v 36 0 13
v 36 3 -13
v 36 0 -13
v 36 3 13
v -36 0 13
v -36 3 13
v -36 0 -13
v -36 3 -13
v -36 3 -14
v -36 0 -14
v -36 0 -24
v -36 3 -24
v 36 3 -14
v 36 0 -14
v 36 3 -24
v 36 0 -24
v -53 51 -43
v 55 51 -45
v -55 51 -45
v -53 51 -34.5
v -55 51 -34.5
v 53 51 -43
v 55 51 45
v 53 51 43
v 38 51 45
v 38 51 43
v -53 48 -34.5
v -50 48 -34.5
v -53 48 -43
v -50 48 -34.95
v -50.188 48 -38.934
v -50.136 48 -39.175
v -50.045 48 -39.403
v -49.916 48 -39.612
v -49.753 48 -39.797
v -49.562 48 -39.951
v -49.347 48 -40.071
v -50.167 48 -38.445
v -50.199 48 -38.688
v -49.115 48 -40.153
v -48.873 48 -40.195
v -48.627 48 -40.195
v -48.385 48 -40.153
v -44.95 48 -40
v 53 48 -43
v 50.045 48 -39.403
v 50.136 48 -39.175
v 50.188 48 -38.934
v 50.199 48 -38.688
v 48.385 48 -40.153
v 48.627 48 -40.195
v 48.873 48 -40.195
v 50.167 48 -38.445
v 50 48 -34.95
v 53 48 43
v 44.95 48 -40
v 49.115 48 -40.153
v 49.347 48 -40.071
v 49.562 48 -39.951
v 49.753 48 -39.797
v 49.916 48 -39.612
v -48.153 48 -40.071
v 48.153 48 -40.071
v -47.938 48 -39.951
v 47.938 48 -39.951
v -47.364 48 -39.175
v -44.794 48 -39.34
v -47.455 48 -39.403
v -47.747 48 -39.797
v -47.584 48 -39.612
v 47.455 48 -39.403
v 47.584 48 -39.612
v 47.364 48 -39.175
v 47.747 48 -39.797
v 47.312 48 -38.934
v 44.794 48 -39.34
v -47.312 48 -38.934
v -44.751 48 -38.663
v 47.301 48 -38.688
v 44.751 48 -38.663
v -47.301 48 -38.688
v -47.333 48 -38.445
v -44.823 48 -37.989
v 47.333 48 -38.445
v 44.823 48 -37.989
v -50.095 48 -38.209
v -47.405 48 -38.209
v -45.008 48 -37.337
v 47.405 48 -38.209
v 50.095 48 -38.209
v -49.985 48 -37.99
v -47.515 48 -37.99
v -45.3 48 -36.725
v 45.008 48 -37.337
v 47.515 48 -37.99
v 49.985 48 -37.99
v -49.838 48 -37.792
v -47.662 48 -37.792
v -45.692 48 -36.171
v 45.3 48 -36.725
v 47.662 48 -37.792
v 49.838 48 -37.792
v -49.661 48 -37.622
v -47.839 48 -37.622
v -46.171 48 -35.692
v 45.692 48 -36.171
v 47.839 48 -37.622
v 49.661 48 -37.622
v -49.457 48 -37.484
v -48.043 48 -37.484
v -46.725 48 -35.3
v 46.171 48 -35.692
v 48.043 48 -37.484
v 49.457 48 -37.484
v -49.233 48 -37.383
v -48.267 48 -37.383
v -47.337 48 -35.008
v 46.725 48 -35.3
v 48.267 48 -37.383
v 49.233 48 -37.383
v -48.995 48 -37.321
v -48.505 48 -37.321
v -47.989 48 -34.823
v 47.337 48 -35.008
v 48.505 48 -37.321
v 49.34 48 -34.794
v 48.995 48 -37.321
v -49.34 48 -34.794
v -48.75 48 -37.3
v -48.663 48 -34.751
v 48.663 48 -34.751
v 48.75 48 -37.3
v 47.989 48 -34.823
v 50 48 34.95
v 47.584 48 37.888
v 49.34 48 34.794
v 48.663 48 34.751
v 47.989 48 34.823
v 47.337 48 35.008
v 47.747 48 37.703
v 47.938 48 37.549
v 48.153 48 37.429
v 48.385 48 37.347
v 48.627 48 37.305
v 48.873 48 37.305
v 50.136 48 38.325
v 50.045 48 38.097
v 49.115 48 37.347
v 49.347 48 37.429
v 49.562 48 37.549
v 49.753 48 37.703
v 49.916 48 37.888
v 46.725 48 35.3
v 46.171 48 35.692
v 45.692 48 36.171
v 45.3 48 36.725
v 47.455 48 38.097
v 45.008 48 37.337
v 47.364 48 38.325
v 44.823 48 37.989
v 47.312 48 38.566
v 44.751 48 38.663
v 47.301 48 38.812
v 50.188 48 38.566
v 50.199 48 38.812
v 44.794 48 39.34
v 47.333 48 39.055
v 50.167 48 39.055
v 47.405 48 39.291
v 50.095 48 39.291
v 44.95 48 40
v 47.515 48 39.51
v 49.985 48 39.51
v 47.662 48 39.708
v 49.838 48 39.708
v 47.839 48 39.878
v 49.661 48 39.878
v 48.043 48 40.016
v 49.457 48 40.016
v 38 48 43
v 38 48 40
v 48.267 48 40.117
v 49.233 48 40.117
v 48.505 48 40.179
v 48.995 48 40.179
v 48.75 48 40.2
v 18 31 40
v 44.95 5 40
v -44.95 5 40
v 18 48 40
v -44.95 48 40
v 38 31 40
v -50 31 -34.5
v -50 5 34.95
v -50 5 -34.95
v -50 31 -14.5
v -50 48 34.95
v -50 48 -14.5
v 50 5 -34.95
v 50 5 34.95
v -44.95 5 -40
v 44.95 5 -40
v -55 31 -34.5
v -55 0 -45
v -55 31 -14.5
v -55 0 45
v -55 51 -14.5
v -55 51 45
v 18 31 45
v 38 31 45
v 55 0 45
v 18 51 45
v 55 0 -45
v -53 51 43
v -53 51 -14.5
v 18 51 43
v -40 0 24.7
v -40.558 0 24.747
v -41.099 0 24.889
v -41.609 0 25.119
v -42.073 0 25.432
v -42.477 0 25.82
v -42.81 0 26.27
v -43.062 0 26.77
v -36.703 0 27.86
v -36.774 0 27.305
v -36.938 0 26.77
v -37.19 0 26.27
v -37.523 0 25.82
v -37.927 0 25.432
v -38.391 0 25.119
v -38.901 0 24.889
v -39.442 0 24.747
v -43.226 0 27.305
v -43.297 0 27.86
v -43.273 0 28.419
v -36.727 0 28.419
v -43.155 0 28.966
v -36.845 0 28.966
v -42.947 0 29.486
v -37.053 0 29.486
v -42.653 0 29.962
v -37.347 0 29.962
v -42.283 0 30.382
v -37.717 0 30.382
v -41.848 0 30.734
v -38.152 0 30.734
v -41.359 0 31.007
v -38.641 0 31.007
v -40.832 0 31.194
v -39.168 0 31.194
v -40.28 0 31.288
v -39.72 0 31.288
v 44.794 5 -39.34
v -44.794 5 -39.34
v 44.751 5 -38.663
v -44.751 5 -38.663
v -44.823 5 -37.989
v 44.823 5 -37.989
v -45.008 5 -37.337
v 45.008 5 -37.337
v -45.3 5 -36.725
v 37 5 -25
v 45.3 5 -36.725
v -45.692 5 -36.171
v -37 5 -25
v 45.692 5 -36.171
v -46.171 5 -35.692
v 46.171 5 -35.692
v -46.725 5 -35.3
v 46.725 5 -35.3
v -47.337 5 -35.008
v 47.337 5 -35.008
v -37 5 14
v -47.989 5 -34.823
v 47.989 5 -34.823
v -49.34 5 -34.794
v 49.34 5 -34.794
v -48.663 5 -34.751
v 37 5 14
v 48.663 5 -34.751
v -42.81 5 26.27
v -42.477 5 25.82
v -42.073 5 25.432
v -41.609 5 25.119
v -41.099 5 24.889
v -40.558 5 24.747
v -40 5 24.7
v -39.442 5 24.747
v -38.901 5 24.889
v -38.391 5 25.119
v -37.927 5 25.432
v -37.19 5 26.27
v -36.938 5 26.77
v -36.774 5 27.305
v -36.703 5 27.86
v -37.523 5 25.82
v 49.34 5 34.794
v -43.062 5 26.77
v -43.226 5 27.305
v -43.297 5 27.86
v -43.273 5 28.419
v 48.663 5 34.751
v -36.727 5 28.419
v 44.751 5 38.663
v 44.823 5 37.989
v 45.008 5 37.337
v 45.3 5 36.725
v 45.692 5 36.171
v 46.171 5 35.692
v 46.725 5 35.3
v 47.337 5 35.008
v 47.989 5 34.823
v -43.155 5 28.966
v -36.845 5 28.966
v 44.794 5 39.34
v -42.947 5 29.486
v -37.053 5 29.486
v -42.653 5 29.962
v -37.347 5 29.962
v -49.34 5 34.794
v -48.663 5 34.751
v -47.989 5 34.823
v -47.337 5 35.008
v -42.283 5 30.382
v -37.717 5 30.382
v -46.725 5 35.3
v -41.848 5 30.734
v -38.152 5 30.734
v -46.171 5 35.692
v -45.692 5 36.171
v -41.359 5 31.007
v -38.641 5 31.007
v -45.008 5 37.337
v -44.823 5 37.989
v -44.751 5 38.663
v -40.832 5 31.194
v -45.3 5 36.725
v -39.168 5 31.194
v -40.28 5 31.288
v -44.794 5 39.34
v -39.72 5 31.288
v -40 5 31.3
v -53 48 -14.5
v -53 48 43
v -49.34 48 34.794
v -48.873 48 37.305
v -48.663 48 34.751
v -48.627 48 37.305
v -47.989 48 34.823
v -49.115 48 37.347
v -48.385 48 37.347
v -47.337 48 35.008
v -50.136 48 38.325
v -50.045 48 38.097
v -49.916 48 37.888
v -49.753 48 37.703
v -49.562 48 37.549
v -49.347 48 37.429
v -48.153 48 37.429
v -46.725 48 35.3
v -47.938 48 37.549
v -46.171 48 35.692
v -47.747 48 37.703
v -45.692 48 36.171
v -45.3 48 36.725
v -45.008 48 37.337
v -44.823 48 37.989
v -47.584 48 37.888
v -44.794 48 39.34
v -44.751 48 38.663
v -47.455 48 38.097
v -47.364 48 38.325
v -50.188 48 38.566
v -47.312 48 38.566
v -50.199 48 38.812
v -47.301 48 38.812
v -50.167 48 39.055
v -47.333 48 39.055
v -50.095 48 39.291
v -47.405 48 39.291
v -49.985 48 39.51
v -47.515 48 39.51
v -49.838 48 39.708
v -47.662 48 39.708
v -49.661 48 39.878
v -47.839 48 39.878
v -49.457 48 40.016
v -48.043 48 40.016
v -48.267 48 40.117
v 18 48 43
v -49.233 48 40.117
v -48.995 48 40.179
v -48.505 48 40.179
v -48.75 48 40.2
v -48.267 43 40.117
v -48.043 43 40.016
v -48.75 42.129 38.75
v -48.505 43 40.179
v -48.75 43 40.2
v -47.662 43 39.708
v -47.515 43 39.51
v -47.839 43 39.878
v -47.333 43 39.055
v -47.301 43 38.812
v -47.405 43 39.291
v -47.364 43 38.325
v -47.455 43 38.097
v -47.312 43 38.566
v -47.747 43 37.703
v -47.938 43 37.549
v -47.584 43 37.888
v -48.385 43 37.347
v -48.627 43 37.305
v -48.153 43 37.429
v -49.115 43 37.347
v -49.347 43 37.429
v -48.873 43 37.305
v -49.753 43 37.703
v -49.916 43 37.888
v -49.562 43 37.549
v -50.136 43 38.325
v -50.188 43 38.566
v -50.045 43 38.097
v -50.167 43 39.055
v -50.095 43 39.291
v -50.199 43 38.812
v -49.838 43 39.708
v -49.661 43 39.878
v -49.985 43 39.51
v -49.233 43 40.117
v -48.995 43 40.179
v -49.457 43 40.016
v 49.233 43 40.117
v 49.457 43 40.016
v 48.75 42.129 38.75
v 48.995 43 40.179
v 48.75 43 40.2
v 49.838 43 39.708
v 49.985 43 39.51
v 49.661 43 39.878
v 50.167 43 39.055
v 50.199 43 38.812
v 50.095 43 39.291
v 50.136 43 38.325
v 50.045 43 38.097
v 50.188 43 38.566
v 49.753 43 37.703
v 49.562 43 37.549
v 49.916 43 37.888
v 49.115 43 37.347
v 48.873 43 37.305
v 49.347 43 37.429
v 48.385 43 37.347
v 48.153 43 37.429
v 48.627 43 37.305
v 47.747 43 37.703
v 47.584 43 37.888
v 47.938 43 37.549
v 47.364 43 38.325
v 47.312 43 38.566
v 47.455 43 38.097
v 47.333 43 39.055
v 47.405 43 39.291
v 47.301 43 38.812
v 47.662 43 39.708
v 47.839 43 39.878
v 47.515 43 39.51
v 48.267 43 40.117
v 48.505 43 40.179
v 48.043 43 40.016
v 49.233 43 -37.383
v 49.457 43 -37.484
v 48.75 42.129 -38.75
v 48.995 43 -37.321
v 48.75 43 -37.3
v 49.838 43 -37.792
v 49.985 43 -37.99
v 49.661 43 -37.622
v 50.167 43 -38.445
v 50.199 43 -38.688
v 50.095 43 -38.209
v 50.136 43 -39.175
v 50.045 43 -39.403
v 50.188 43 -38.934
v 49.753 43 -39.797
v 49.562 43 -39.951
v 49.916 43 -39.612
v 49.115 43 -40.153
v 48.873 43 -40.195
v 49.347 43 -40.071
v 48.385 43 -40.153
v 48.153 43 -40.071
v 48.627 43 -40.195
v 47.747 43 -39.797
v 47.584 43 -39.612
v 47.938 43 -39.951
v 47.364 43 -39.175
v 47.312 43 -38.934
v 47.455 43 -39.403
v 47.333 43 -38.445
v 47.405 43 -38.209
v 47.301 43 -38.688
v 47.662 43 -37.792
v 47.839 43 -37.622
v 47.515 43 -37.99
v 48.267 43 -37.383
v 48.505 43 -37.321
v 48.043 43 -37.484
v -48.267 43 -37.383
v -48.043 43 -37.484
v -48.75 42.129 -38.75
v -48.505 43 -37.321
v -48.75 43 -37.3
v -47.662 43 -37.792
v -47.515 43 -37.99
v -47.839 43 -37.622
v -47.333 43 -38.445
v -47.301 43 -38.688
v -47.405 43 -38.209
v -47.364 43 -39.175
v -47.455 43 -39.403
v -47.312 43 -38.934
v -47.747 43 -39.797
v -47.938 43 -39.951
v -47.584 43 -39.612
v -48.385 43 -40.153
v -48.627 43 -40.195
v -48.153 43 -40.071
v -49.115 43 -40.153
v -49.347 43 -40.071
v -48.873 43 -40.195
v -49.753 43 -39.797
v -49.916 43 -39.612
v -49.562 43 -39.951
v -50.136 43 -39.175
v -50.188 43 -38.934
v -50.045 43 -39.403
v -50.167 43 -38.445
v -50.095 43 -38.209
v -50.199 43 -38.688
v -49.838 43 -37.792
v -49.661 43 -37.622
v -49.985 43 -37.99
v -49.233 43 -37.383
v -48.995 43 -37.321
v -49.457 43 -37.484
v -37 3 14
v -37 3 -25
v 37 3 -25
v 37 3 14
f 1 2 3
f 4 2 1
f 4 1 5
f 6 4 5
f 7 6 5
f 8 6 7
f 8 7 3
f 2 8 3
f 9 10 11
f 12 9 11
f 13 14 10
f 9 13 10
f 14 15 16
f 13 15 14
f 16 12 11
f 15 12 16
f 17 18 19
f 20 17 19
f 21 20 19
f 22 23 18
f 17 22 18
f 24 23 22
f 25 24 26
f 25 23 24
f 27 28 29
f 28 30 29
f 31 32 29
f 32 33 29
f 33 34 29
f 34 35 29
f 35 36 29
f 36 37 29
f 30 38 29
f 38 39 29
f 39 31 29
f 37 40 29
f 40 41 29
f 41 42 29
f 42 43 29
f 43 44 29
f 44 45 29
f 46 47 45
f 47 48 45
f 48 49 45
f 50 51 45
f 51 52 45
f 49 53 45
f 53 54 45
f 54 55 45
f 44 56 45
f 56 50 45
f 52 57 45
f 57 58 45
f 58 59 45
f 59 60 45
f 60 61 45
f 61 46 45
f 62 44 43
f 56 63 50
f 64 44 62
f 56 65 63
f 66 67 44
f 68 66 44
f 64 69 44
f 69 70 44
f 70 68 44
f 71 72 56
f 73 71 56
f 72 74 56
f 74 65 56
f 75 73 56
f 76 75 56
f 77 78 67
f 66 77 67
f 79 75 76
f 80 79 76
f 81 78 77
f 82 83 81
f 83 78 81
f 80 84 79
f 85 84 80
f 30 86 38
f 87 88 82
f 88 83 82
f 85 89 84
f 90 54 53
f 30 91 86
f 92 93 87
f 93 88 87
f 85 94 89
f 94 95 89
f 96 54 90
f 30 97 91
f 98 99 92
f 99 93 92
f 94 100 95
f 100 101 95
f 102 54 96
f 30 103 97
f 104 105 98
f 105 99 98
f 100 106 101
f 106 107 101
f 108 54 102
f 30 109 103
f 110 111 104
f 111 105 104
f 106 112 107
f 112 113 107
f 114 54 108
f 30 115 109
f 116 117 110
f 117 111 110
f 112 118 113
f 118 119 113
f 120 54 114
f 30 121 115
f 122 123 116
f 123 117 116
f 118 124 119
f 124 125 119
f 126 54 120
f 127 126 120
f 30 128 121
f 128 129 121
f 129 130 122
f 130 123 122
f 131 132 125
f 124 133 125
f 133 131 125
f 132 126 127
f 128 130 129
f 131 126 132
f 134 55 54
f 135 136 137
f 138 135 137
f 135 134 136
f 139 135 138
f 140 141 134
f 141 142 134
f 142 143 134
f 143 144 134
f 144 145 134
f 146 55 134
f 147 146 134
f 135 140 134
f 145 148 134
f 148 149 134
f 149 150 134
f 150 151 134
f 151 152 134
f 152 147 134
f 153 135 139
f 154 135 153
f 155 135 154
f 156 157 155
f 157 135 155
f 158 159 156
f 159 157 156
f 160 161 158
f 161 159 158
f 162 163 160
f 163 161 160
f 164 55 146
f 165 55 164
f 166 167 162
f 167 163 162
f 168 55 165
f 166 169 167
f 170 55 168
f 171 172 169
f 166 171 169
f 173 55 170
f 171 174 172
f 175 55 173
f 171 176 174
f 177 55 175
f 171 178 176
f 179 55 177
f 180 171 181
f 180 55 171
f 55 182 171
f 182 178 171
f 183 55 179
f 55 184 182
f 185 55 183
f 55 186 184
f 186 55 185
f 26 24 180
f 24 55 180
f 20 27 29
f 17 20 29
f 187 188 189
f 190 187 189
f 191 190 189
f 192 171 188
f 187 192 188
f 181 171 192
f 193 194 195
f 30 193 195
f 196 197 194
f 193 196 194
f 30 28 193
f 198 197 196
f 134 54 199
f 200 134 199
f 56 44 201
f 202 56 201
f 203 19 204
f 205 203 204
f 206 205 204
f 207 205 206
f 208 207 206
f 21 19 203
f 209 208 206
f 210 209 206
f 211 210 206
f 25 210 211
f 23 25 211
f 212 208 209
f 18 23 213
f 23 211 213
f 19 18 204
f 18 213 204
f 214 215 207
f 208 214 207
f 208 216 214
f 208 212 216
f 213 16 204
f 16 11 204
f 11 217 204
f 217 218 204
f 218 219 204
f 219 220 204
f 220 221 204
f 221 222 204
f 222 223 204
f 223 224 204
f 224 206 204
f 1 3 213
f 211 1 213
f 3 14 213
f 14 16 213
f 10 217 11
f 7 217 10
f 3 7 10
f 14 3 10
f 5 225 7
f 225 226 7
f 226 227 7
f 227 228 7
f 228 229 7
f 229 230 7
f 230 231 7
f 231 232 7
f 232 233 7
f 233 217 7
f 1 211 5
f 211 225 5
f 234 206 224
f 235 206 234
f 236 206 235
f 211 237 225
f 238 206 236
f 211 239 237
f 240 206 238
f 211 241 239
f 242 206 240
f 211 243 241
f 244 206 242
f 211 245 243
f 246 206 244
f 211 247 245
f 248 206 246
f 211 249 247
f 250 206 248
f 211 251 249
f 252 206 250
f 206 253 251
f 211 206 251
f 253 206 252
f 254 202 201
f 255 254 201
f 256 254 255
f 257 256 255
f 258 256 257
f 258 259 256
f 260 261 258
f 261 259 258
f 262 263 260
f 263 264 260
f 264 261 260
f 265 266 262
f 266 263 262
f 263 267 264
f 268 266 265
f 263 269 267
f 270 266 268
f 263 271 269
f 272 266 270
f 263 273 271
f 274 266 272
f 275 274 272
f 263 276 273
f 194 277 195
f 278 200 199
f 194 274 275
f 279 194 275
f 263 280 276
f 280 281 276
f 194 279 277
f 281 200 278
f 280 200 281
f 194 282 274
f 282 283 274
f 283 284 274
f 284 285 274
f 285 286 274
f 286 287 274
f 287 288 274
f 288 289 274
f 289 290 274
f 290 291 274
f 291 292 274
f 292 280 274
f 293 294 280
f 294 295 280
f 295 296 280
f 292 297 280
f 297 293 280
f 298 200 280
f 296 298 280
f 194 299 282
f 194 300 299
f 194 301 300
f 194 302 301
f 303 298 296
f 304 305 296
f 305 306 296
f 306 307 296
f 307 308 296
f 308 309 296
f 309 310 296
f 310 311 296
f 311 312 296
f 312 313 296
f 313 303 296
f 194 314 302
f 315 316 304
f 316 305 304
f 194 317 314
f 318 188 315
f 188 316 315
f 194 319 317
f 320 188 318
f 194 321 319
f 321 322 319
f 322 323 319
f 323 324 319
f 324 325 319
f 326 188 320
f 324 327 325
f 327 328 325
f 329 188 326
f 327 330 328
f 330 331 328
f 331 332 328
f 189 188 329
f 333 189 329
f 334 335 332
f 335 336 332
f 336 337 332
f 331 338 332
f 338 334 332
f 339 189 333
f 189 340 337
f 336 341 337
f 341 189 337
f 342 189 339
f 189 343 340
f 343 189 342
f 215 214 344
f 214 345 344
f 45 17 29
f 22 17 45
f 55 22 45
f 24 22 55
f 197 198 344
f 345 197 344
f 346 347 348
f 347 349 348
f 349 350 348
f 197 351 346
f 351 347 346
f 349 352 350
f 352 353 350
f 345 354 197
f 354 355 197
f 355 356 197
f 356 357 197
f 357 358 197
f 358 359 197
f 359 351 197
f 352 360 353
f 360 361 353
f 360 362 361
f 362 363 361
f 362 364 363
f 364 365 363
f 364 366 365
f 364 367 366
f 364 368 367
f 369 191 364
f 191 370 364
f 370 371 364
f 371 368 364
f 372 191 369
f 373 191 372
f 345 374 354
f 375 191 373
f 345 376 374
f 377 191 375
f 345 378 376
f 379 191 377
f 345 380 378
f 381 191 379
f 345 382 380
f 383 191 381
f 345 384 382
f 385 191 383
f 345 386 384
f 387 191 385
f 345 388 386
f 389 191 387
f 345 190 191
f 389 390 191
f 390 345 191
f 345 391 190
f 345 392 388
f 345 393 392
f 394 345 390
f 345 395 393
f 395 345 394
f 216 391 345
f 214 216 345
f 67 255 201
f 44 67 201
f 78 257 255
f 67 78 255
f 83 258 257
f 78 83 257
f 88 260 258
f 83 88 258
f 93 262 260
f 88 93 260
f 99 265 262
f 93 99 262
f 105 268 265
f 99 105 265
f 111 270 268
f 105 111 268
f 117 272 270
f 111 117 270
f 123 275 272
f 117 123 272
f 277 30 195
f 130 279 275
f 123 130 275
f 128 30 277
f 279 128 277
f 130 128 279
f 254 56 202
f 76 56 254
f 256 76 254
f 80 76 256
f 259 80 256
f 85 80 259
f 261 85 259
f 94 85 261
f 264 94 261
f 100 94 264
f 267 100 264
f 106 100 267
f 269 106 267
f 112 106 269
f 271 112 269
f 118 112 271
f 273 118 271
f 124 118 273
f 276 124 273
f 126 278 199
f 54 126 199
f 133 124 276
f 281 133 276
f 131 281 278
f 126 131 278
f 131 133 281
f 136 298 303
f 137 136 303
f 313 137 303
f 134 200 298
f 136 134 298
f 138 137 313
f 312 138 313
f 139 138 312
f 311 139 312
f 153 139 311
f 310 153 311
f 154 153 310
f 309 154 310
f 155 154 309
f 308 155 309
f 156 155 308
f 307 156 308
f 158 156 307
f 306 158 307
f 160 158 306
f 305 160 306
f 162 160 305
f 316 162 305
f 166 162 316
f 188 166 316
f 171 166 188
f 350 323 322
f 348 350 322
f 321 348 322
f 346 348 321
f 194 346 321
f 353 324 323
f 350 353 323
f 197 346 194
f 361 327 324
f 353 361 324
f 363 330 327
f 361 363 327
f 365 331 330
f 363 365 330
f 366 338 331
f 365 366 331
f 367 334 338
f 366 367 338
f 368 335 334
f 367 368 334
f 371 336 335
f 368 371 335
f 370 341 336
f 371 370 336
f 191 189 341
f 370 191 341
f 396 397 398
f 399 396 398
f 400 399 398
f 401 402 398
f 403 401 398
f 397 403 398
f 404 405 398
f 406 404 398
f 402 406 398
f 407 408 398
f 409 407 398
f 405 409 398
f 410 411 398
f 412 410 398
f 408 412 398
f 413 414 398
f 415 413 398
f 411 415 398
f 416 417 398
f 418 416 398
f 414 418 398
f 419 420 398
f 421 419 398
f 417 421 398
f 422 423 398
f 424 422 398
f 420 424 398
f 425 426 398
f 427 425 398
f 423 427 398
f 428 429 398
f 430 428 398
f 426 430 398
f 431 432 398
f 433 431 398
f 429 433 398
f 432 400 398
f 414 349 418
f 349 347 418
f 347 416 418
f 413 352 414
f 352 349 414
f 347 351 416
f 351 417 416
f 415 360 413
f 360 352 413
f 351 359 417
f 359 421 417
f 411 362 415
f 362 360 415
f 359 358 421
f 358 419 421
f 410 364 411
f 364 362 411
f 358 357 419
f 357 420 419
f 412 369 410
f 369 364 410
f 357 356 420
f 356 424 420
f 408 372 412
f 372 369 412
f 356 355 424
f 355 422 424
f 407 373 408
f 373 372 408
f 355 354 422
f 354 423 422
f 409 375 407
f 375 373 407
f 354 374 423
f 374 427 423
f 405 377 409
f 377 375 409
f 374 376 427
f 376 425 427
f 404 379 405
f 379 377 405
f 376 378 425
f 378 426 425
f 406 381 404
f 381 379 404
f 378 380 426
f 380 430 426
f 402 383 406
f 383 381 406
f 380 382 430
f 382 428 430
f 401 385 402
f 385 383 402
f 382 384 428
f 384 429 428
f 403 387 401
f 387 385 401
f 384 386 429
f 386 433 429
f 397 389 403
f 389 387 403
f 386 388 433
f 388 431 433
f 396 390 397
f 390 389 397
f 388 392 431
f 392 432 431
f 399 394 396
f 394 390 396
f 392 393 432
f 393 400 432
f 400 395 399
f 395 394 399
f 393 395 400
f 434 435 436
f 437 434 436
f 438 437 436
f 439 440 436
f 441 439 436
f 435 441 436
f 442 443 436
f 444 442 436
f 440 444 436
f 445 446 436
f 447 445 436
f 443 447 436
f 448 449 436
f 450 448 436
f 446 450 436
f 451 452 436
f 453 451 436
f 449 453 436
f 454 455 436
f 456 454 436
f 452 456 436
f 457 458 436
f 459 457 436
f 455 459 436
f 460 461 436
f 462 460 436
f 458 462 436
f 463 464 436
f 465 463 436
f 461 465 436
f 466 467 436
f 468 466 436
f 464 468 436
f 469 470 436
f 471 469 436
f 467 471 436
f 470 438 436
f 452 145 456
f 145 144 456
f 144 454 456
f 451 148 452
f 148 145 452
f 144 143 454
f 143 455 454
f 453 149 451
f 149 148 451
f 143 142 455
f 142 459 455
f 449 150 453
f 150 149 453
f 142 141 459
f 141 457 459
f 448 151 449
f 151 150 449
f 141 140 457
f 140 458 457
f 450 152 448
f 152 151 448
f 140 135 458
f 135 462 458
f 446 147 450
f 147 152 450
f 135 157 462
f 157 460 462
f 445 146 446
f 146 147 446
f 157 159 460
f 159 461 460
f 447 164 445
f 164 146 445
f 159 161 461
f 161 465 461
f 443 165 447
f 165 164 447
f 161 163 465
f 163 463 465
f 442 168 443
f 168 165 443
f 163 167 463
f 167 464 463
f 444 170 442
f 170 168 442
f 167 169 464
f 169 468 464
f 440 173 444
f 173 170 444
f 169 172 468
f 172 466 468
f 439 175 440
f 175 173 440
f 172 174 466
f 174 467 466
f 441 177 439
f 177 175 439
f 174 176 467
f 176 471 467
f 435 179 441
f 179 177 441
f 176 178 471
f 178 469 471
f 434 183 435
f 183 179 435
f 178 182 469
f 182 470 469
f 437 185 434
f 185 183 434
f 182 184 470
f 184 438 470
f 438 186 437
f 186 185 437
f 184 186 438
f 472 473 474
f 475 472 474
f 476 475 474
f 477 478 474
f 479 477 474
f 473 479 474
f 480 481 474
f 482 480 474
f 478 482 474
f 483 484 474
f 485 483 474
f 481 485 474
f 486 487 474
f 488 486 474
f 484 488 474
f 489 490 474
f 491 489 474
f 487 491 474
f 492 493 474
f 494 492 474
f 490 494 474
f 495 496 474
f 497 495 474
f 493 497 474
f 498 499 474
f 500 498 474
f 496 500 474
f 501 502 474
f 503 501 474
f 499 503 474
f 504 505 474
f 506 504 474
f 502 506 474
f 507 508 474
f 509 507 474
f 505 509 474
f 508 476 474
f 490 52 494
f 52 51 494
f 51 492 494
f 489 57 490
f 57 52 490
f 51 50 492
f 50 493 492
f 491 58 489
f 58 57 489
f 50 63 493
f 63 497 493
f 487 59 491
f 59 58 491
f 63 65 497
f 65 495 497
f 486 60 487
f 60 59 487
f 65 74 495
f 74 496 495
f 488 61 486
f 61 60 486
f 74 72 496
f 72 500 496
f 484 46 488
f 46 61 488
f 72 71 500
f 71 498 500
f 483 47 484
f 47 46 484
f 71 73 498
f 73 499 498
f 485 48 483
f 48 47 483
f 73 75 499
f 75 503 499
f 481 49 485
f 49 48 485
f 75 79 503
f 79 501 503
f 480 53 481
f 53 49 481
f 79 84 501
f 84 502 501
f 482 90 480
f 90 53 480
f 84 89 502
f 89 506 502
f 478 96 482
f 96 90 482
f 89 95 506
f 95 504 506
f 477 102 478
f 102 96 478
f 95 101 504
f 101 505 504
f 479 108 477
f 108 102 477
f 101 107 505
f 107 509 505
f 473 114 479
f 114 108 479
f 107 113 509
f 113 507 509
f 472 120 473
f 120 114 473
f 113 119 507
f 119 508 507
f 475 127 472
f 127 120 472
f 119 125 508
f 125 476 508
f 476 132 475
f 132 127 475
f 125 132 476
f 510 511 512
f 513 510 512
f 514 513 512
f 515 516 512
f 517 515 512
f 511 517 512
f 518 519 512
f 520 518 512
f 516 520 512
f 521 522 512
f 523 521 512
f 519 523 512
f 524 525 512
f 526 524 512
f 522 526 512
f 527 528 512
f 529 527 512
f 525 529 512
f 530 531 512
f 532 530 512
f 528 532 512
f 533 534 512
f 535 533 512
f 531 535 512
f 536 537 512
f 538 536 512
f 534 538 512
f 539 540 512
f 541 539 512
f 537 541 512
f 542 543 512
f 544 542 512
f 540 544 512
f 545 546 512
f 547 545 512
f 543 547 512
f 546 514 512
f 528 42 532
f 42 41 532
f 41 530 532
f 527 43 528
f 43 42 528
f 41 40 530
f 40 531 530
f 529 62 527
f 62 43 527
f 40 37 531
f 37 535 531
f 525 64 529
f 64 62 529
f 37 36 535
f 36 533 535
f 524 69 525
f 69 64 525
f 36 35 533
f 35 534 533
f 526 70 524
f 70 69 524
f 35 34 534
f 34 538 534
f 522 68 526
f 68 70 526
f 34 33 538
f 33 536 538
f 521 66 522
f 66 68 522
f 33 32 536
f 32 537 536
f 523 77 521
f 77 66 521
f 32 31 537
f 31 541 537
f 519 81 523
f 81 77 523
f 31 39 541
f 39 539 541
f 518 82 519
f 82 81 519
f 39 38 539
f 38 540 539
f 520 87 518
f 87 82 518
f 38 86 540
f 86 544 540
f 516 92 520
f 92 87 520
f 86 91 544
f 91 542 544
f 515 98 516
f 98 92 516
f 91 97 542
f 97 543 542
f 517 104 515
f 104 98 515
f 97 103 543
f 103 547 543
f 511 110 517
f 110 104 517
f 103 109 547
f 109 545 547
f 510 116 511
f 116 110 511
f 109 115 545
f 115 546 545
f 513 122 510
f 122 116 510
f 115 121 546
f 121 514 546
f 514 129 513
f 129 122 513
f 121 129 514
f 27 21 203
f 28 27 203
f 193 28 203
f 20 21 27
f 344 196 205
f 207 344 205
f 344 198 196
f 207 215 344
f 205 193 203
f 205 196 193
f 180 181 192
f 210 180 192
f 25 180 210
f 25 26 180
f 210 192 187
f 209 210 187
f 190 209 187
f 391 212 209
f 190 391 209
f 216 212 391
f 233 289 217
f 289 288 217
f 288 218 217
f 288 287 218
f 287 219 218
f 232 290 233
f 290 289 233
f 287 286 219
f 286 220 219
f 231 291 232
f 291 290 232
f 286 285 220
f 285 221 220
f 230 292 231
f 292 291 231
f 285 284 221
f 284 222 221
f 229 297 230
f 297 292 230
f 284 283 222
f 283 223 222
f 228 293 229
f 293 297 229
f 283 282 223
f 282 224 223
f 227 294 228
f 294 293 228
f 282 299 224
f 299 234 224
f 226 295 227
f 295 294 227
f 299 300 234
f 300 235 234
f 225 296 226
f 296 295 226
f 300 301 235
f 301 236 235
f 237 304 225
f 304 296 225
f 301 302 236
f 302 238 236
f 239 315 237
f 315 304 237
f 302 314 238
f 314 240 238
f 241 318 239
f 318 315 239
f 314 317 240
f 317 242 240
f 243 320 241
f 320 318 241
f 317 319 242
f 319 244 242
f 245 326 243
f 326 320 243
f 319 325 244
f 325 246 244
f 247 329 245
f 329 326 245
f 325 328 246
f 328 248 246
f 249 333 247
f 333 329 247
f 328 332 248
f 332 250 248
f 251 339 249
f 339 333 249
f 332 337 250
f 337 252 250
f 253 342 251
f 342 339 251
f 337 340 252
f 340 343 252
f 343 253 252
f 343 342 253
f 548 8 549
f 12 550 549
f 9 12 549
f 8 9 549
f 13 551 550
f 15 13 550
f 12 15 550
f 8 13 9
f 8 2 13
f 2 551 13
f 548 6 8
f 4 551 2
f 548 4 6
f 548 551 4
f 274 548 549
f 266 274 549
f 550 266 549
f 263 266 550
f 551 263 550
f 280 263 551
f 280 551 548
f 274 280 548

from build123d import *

# Parameters (mm, degrees)
SKETCH1_W                  = 110
SKETCH1_H                  = 90
BOSS_EXTRUDE1_DEPTH        = 51
SKETCH2_W                  = 100
SKETCH2_H                  = 80
CUT_EXTRUDE1_DEPTH         = 46
SKETCH3_W                  = 106
SKETCH3_H                  = 3
CUT_EXTRUDE2_DEPTH         = 3
SKETCH5_W                  = 3
SKETCH5_H                  = 83
CUT_EXTRUDE3_DEPTH         = 3
SKETCH6_W                  = 103
SKETCH6_H                  = 3
CUT_EXTRUDE4_DEPTH         = 3
SKETCH7_W                  = 3
SKETCH7_H                  = 80
CUT_EXTRUDE5_DEPTH         = 3
SKETCH9_R                  = 4
BOSS_EXTRUDE2_DEPTH        = 43
SKETCH10_R                 = 4
BOSS_EXTRUDE3_DEPTH        = 43
M2_5_CLEARANCE_HOLE1_D     = 2.9
M2_5_CLEARANCE_HOLE1_DEPTH = 5
M2_5_CLEARANCE_HOLE1_TIP   = 0.871247898
SKETCH14_W                 = 20
SKETCH14_H                 = 20
CUT_EXTRUDE6_DEPTH         = 5
SKETCH15_W                 = 20
SKETCH15_H                 = 20
CUT_EXTRUDE7_DEPTH         = 5
SKETCH16_W                 = 72
SKETCH16_H                 = 26
CUT_EXTRUDE8_DEPTH         = 5
SKETCH17_W                 = 72
SKETCH17_H                 = 10
CUT_EXTRUDE9_DEPTH         = 5
M6_CLEARANCE_HOLE2_D       = 6.6
SKETCH22_W                 = 74
SKETCH22_H                 = 39
CUT_EXTRUDE10_DEPTH        = 2


with BuildPart() as part:
    # Sketch1 → Boss-Extrude1 (new body)
    with BuildSketch(Plane(origin=(0, 0, 0), x_dir=(1, 0, 0), z_dir=(0, 1, 0))):
        Rectangle(SKETCH1_W, SKETCH1_H)
    extrude(amount=BOSS_EXTRUDE1_DEPTH)

    # Sketch2 → Cut-Extrude1 (cut)
    with BuildSketch(Plane(origin=(0, 51, 0), x_dir=(1, 0, 0), z_dir=(0, 1, 0))):
        Rectangle(SKETCH2_W, SKETCH2_H)
    extrude(amount=-CUT_EXTRUDE1_DEPTH, mode=Mode.SUBTRACT)

    # Sketch3 → Cut-Extrude2 (cut)
    with BuildSketch(Plane(origin=(0, 51, 0), x_dir=(1, 0, 0), z_dir=(0, 1, 0))):
        with Locations((0, 41.5)):
            Rectangle(SKETCH3_W, SKETCH3_H)
    extrude(amount=-CUT_EXTRUDE2_DEPTH, mode=Mode.SUBTRACT)

    # Sketch5 → Cut-Extrude3 (cut)
    with BuildSketch(Plane(origin=(0, 51, 0), x_dir=(1, 0, 0), z_dir=(0, 1, 0))):
        with Locations((51.5, -1.5)):
            Rectangle(SKETCH5_W, SKETCH5_H)
    extrude(amount=-CUT_EXTRUDE3_DEPTH, mode=Mode.SUBTRACT)

    # Sketch6 → Cut-Extrude4 (cut)
    with BuildSketch(Plane(origin=(0, 51, 0), x_dir=(1, 0, 0), z_dir=(0, 1, 0))):
        with Locations((-1.5, -41.5)):
            Rectangle(SKETCH6_W, SKETCH6_H)
    extrude(amount=-CUT_EXTRUDE4_DEPTH, mode=Mode.SUBTRACT)

    # Sketch7 → Cut-Extrude5 (cut)
    with BuildSketch(Plane(origin=(0, 51, 0), x_dir=(1, 0, 0), z_dir=(0, 1, 0))):
        with Locations((-51.5, 0)):
            Rectangle(SKETCH7_W, SKETCH7_H)
    extrude(amount=-CUT_EXTRUDE5_DEPTH, mode=Mode.SUBTRACT)

    # Sketch9 → Boss-Extrude2 (add)
    with BuildSketch(Plane(origin=(0, 5, 0), x_dir=(1, 0, 0), z_dir=(0, 1, 0))):
        with Locations((-48.75, 38.75)):
            Circle(SKETCH9_R)
    extrude(amount=BOSS_EXTRUDE2_DEPTH)

    # Sketch10 → Boss-Extrude3 (add)
    with BuildSketch(Plane(origin=(0, 5, 0), x_dir=(1, 0, 0), z_dir=(0, 1, 0))):
        with Locations((48.75, 38.75)):
            Circle(SKETCH10_R)
        with Locations((48.75, -38.75)):
            Circle(SKETCH10_R)
        with Locations((-48.75, -38.75)):
            Circle(SKETCH10_R)
    extrude(amount=BOSS_EXTRUDE3_DEPTH)

    # M2.5 Clearance Hole1
    with Locations(Plane(origin=(0, 48, 0), x_dir=(1, 0, 0), z_dir=(0, 1, 0))):
        with Locations((-48.75, 38.75), (48.75, 38.75), (48.75, -38.75), (-48.75, -38.75)):
            Hole(M2_5_CLEARANCE_HOLE1_D / 2, depth=M2_5_CLEARANCE_HOLE1_DEPTH)
            with Locations((0, 0, -(M2_5_CLEARANCE_HOLE1_DEPTH + M2_5_CLEARANCE_HOLE1_TIP / 2))):  # 118° drill point
                Cone(0, M2_5_CLEARANCE_HOLE1_D / 2, M2_5_CLEARANCE_HOLE1_TIP, mode=Mode.SUBTRACT)

    # Sketch14 → Cut-Extrude6 (cut)
    with BuildSketch(Plane.ZY.offset(55)):
        with Locations((-24.5, 41)):
            Rectangle(SKETCH14_W, SKETCH14_H)
    extrude(amount=-CUT_EXTRUDE6_DEPTH, mode=Mode.SUBTRACT)

    # Sketch15 → Cut-Extrude7 (cut)
    with BuildSketch(Plane.XY.offset(45)):
        with Locations((28, 41)):
            Rectangle(SKETCH15_W, SKETCH15_H)
    extrude(amount=-CUT_EXTRUDE7_DEPTH, mode=Mode.SUBTRACT)

    # Sketch16 → Cut-Extrude8 (cut)
    with BuildSketch(Plane(origin=(0, 5, 0), x_dir=(1, 0, 0), z_dir=(0, 1, 0))):
        Rectangle(SKETCH16_W, SKETCH16_H)
    extrude(amount=-CUT_EXTRUDE8_DEPTH, mode=Mode.SUBTRACT)

    # Sketch17 → Cut-Extrude9 (cut)
    with BuildSketch(Plane.XZ):
        with Locations((0, -19)):
            Rectangle(SKETCH17_W, SKETCH17_H)
    extrude(amount=-CUT_EXTRUDE9_DEPTH, mode=Mode.SUBTRACT)

    # M6 Clearance Hole2 (through all)
    with Locations(Plane(origin=(0, 0, 0), x_dir=(-1, 0, 0), z_dir=(0, -1, 0))):
        with Locations((40, -28)):
            Hole(M6_CLEARANCE_HOLE2_D / 2)

    # Sketch22 → Cut-Extrude10 (cut)
    with BuildSketch(Plane(origin=(0, 5, 0), x_dir=(1, 0, 0), z_dir=(0, 1, 0))):
        with Locations((0, 5.5)):
            Rectangle(SKETCH22_W, SKETCH22_H)
    extrude(amount=-CUT_EXTRUDE10_DEPTH, mode=Mode.SUBTRACT)


solid = part.part
